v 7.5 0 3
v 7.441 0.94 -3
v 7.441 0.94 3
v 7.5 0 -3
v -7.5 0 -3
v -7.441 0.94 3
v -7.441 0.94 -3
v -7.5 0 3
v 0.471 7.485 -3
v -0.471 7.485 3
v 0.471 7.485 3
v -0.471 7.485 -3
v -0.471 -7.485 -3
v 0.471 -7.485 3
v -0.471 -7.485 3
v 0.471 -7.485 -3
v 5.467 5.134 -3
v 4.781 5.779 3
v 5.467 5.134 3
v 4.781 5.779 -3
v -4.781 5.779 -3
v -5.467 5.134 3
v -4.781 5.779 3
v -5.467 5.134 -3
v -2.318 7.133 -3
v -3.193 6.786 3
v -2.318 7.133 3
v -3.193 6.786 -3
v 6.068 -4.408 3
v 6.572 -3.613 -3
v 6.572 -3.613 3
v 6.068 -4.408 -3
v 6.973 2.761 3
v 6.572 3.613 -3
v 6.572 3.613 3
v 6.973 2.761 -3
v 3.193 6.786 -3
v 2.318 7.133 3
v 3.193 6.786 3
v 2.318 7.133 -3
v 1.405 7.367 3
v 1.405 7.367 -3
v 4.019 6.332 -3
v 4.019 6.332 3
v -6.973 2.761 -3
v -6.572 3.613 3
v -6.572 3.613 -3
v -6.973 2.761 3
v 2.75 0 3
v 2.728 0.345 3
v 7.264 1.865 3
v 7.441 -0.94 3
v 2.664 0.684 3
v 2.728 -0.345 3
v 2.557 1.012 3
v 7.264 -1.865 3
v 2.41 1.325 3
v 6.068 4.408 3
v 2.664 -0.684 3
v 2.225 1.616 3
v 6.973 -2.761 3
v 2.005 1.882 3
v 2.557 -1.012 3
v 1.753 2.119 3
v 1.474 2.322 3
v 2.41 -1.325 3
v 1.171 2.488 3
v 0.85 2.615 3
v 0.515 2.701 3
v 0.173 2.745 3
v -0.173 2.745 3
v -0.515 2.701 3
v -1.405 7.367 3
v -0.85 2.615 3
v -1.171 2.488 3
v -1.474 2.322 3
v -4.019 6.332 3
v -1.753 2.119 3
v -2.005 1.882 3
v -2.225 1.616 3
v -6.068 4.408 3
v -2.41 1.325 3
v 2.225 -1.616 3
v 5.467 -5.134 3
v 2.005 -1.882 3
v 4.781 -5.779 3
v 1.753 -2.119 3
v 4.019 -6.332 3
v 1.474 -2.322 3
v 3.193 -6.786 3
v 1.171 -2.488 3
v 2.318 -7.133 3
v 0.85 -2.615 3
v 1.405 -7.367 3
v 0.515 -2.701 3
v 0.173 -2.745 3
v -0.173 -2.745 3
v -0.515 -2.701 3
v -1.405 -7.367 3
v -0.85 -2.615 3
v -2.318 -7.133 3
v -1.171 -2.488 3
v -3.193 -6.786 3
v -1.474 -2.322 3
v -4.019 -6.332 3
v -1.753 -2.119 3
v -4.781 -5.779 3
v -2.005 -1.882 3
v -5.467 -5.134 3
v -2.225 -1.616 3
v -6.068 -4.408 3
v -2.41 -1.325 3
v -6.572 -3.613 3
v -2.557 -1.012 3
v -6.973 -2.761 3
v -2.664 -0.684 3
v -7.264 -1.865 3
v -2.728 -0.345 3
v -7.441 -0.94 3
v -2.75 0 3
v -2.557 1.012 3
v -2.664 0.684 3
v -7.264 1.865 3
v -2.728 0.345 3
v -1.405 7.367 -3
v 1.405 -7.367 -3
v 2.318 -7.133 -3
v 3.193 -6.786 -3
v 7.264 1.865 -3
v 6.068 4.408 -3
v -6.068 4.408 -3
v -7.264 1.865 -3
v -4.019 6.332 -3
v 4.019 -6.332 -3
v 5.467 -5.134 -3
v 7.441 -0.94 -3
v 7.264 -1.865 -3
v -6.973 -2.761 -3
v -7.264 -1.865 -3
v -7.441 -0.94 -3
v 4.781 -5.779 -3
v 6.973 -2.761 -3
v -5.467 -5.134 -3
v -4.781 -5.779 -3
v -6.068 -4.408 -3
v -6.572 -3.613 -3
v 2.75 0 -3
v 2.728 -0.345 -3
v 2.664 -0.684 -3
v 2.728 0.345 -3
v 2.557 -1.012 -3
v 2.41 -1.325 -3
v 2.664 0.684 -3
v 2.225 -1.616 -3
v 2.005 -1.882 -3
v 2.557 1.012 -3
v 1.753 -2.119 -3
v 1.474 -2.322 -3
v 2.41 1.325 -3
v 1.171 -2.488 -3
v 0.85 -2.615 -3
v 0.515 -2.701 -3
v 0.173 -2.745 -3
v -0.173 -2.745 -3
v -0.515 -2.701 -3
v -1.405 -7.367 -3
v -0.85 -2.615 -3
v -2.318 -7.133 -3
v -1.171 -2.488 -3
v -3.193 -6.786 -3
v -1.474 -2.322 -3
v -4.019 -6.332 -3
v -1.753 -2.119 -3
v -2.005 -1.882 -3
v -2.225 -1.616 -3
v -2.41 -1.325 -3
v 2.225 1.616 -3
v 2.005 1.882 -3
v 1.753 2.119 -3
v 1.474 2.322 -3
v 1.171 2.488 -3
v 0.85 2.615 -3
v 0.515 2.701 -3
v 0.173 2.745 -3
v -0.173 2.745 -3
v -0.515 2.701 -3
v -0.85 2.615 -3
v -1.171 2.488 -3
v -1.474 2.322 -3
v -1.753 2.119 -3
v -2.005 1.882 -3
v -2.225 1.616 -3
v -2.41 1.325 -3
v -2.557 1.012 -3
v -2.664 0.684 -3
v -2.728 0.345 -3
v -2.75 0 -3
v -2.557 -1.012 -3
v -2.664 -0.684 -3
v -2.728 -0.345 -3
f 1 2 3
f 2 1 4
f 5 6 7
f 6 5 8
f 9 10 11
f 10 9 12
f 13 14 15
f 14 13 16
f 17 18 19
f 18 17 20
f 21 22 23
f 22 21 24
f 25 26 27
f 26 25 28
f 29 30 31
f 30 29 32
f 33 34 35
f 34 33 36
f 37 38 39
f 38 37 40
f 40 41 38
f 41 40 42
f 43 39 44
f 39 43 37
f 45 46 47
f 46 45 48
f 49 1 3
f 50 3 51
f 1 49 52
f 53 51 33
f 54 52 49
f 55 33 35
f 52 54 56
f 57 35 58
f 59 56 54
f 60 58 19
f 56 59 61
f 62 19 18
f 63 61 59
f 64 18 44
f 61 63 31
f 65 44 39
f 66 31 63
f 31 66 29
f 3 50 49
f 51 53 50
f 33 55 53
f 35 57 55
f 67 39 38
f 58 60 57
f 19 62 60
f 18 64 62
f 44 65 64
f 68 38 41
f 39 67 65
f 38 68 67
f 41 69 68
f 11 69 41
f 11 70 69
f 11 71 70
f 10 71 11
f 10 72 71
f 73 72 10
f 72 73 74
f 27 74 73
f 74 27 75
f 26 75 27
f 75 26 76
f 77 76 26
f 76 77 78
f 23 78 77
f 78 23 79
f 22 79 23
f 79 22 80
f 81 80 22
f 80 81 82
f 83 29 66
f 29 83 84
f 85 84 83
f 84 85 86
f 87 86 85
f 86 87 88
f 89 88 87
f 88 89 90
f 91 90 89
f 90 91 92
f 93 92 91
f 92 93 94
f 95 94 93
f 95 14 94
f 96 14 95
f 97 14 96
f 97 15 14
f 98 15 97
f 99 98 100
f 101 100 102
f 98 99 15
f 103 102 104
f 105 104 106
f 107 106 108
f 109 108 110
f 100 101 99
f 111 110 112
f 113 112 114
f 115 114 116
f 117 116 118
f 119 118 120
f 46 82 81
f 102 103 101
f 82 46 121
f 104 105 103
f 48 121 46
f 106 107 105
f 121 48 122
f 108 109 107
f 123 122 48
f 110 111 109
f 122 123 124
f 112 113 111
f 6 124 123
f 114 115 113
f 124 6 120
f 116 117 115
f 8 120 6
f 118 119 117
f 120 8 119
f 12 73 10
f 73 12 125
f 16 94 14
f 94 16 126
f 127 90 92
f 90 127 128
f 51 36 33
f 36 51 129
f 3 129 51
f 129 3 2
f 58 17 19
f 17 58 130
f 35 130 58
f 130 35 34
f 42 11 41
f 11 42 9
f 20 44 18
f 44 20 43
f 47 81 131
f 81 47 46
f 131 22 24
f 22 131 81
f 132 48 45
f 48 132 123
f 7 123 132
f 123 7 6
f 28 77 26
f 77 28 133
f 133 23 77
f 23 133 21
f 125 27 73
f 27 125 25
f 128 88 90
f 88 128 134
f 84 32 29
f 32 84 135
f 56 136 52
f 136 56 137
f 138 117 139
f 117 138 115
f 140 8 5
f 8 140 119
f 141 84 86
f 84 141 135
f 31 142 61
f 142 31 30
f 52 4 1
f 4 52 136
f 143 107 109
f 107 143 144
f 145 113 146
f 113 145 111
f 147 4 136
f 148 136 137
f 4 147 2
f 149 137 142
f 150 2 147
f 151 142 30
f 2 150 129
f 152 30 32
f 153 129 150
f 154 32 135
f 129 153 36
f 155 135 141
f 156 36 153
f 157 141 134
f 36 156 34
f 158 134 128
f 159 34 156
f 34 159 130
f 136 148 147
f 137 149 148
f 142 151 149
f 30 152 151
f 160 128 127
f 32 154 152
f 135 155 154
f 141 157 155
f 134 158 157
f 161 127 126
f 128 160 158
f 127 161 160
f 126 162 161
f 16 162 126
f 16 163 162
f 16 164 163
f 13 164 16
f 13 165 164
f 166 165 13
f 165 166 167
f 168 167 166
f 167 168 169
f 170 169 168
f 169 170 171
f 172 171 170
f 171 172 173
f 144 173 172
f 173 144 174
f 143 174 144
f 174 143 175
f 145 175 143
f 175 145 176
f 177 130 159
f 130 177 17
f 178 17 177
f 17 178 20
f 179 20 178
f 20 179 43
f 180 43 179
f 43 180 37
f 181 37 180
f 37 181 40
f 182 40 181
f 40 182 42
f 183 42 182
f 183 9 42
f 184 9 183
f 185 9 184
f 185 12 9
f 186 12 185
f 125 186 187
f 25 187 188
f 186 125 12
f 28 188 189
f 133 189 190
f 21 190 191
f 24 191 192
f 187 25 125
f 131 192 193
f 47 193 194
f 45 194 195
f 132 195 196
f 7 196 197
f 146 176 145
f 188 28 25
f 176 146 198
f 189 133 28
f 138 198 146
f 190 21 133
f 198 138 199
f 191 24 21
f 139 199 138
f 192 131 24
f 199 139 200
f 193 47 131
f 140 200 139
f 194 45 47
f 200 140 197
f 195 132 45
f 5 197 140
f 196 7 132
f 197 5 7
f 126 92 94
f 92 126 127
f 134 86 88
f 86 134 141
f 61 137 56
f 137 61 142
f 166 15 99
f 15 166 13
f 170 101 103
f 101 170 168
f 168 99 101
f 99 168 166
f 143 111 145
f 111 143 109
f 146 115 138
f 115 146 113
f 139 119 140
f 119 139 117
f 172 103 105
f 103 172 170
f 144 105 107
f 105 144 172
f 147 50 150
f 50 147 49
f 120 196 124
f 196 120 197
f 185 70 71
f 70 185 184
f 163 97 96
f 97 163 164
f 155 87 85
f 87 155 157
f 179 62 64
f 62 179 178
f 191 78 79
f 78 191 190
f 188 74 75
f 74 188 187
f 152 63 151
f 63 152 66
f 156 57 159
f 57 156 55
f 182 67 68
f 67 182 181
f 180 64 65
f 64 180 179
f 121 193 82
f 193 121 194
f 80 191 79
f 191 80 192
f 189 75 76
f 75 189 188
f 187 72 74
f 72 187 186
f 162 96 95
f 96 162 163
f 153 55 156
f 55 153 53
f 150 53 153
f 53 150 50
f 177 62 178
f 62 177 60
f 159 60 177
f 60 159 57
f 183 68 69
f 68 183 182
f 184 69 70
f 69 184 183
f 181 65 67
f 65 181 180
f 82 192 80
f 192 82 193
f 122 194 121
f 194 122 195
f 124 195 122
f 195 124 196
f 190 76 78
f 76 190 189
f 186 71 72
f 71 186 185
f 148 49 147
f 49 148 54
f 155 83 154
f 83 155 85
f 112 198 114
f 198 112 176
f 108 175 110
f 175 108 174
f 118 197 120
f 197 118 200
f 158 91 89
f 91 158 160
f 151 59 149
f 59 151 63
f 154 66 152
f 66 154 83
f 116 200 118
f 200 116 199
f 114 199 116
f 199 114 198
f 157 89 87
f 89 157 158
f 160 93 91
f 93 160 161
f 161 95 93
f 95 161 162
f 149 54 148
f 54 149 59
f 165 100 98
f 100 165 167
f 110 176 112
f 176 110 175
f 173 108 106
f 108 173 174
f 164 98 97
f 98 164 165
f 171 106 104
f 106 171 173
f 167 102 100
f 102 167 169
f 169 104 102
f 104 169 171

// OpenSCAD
$fn = 50;


difference() {
	union() {
		translate(v = [0, 0, -3.0000000000]) {
			cylinder(h = 6, r = 7.5000000000);
		}
	}
	union() {
		translate(v = [0, 0, -100.0000000000]) {
			cylinder(h = 200, r = 2.7500000000);
		}
	}
}
